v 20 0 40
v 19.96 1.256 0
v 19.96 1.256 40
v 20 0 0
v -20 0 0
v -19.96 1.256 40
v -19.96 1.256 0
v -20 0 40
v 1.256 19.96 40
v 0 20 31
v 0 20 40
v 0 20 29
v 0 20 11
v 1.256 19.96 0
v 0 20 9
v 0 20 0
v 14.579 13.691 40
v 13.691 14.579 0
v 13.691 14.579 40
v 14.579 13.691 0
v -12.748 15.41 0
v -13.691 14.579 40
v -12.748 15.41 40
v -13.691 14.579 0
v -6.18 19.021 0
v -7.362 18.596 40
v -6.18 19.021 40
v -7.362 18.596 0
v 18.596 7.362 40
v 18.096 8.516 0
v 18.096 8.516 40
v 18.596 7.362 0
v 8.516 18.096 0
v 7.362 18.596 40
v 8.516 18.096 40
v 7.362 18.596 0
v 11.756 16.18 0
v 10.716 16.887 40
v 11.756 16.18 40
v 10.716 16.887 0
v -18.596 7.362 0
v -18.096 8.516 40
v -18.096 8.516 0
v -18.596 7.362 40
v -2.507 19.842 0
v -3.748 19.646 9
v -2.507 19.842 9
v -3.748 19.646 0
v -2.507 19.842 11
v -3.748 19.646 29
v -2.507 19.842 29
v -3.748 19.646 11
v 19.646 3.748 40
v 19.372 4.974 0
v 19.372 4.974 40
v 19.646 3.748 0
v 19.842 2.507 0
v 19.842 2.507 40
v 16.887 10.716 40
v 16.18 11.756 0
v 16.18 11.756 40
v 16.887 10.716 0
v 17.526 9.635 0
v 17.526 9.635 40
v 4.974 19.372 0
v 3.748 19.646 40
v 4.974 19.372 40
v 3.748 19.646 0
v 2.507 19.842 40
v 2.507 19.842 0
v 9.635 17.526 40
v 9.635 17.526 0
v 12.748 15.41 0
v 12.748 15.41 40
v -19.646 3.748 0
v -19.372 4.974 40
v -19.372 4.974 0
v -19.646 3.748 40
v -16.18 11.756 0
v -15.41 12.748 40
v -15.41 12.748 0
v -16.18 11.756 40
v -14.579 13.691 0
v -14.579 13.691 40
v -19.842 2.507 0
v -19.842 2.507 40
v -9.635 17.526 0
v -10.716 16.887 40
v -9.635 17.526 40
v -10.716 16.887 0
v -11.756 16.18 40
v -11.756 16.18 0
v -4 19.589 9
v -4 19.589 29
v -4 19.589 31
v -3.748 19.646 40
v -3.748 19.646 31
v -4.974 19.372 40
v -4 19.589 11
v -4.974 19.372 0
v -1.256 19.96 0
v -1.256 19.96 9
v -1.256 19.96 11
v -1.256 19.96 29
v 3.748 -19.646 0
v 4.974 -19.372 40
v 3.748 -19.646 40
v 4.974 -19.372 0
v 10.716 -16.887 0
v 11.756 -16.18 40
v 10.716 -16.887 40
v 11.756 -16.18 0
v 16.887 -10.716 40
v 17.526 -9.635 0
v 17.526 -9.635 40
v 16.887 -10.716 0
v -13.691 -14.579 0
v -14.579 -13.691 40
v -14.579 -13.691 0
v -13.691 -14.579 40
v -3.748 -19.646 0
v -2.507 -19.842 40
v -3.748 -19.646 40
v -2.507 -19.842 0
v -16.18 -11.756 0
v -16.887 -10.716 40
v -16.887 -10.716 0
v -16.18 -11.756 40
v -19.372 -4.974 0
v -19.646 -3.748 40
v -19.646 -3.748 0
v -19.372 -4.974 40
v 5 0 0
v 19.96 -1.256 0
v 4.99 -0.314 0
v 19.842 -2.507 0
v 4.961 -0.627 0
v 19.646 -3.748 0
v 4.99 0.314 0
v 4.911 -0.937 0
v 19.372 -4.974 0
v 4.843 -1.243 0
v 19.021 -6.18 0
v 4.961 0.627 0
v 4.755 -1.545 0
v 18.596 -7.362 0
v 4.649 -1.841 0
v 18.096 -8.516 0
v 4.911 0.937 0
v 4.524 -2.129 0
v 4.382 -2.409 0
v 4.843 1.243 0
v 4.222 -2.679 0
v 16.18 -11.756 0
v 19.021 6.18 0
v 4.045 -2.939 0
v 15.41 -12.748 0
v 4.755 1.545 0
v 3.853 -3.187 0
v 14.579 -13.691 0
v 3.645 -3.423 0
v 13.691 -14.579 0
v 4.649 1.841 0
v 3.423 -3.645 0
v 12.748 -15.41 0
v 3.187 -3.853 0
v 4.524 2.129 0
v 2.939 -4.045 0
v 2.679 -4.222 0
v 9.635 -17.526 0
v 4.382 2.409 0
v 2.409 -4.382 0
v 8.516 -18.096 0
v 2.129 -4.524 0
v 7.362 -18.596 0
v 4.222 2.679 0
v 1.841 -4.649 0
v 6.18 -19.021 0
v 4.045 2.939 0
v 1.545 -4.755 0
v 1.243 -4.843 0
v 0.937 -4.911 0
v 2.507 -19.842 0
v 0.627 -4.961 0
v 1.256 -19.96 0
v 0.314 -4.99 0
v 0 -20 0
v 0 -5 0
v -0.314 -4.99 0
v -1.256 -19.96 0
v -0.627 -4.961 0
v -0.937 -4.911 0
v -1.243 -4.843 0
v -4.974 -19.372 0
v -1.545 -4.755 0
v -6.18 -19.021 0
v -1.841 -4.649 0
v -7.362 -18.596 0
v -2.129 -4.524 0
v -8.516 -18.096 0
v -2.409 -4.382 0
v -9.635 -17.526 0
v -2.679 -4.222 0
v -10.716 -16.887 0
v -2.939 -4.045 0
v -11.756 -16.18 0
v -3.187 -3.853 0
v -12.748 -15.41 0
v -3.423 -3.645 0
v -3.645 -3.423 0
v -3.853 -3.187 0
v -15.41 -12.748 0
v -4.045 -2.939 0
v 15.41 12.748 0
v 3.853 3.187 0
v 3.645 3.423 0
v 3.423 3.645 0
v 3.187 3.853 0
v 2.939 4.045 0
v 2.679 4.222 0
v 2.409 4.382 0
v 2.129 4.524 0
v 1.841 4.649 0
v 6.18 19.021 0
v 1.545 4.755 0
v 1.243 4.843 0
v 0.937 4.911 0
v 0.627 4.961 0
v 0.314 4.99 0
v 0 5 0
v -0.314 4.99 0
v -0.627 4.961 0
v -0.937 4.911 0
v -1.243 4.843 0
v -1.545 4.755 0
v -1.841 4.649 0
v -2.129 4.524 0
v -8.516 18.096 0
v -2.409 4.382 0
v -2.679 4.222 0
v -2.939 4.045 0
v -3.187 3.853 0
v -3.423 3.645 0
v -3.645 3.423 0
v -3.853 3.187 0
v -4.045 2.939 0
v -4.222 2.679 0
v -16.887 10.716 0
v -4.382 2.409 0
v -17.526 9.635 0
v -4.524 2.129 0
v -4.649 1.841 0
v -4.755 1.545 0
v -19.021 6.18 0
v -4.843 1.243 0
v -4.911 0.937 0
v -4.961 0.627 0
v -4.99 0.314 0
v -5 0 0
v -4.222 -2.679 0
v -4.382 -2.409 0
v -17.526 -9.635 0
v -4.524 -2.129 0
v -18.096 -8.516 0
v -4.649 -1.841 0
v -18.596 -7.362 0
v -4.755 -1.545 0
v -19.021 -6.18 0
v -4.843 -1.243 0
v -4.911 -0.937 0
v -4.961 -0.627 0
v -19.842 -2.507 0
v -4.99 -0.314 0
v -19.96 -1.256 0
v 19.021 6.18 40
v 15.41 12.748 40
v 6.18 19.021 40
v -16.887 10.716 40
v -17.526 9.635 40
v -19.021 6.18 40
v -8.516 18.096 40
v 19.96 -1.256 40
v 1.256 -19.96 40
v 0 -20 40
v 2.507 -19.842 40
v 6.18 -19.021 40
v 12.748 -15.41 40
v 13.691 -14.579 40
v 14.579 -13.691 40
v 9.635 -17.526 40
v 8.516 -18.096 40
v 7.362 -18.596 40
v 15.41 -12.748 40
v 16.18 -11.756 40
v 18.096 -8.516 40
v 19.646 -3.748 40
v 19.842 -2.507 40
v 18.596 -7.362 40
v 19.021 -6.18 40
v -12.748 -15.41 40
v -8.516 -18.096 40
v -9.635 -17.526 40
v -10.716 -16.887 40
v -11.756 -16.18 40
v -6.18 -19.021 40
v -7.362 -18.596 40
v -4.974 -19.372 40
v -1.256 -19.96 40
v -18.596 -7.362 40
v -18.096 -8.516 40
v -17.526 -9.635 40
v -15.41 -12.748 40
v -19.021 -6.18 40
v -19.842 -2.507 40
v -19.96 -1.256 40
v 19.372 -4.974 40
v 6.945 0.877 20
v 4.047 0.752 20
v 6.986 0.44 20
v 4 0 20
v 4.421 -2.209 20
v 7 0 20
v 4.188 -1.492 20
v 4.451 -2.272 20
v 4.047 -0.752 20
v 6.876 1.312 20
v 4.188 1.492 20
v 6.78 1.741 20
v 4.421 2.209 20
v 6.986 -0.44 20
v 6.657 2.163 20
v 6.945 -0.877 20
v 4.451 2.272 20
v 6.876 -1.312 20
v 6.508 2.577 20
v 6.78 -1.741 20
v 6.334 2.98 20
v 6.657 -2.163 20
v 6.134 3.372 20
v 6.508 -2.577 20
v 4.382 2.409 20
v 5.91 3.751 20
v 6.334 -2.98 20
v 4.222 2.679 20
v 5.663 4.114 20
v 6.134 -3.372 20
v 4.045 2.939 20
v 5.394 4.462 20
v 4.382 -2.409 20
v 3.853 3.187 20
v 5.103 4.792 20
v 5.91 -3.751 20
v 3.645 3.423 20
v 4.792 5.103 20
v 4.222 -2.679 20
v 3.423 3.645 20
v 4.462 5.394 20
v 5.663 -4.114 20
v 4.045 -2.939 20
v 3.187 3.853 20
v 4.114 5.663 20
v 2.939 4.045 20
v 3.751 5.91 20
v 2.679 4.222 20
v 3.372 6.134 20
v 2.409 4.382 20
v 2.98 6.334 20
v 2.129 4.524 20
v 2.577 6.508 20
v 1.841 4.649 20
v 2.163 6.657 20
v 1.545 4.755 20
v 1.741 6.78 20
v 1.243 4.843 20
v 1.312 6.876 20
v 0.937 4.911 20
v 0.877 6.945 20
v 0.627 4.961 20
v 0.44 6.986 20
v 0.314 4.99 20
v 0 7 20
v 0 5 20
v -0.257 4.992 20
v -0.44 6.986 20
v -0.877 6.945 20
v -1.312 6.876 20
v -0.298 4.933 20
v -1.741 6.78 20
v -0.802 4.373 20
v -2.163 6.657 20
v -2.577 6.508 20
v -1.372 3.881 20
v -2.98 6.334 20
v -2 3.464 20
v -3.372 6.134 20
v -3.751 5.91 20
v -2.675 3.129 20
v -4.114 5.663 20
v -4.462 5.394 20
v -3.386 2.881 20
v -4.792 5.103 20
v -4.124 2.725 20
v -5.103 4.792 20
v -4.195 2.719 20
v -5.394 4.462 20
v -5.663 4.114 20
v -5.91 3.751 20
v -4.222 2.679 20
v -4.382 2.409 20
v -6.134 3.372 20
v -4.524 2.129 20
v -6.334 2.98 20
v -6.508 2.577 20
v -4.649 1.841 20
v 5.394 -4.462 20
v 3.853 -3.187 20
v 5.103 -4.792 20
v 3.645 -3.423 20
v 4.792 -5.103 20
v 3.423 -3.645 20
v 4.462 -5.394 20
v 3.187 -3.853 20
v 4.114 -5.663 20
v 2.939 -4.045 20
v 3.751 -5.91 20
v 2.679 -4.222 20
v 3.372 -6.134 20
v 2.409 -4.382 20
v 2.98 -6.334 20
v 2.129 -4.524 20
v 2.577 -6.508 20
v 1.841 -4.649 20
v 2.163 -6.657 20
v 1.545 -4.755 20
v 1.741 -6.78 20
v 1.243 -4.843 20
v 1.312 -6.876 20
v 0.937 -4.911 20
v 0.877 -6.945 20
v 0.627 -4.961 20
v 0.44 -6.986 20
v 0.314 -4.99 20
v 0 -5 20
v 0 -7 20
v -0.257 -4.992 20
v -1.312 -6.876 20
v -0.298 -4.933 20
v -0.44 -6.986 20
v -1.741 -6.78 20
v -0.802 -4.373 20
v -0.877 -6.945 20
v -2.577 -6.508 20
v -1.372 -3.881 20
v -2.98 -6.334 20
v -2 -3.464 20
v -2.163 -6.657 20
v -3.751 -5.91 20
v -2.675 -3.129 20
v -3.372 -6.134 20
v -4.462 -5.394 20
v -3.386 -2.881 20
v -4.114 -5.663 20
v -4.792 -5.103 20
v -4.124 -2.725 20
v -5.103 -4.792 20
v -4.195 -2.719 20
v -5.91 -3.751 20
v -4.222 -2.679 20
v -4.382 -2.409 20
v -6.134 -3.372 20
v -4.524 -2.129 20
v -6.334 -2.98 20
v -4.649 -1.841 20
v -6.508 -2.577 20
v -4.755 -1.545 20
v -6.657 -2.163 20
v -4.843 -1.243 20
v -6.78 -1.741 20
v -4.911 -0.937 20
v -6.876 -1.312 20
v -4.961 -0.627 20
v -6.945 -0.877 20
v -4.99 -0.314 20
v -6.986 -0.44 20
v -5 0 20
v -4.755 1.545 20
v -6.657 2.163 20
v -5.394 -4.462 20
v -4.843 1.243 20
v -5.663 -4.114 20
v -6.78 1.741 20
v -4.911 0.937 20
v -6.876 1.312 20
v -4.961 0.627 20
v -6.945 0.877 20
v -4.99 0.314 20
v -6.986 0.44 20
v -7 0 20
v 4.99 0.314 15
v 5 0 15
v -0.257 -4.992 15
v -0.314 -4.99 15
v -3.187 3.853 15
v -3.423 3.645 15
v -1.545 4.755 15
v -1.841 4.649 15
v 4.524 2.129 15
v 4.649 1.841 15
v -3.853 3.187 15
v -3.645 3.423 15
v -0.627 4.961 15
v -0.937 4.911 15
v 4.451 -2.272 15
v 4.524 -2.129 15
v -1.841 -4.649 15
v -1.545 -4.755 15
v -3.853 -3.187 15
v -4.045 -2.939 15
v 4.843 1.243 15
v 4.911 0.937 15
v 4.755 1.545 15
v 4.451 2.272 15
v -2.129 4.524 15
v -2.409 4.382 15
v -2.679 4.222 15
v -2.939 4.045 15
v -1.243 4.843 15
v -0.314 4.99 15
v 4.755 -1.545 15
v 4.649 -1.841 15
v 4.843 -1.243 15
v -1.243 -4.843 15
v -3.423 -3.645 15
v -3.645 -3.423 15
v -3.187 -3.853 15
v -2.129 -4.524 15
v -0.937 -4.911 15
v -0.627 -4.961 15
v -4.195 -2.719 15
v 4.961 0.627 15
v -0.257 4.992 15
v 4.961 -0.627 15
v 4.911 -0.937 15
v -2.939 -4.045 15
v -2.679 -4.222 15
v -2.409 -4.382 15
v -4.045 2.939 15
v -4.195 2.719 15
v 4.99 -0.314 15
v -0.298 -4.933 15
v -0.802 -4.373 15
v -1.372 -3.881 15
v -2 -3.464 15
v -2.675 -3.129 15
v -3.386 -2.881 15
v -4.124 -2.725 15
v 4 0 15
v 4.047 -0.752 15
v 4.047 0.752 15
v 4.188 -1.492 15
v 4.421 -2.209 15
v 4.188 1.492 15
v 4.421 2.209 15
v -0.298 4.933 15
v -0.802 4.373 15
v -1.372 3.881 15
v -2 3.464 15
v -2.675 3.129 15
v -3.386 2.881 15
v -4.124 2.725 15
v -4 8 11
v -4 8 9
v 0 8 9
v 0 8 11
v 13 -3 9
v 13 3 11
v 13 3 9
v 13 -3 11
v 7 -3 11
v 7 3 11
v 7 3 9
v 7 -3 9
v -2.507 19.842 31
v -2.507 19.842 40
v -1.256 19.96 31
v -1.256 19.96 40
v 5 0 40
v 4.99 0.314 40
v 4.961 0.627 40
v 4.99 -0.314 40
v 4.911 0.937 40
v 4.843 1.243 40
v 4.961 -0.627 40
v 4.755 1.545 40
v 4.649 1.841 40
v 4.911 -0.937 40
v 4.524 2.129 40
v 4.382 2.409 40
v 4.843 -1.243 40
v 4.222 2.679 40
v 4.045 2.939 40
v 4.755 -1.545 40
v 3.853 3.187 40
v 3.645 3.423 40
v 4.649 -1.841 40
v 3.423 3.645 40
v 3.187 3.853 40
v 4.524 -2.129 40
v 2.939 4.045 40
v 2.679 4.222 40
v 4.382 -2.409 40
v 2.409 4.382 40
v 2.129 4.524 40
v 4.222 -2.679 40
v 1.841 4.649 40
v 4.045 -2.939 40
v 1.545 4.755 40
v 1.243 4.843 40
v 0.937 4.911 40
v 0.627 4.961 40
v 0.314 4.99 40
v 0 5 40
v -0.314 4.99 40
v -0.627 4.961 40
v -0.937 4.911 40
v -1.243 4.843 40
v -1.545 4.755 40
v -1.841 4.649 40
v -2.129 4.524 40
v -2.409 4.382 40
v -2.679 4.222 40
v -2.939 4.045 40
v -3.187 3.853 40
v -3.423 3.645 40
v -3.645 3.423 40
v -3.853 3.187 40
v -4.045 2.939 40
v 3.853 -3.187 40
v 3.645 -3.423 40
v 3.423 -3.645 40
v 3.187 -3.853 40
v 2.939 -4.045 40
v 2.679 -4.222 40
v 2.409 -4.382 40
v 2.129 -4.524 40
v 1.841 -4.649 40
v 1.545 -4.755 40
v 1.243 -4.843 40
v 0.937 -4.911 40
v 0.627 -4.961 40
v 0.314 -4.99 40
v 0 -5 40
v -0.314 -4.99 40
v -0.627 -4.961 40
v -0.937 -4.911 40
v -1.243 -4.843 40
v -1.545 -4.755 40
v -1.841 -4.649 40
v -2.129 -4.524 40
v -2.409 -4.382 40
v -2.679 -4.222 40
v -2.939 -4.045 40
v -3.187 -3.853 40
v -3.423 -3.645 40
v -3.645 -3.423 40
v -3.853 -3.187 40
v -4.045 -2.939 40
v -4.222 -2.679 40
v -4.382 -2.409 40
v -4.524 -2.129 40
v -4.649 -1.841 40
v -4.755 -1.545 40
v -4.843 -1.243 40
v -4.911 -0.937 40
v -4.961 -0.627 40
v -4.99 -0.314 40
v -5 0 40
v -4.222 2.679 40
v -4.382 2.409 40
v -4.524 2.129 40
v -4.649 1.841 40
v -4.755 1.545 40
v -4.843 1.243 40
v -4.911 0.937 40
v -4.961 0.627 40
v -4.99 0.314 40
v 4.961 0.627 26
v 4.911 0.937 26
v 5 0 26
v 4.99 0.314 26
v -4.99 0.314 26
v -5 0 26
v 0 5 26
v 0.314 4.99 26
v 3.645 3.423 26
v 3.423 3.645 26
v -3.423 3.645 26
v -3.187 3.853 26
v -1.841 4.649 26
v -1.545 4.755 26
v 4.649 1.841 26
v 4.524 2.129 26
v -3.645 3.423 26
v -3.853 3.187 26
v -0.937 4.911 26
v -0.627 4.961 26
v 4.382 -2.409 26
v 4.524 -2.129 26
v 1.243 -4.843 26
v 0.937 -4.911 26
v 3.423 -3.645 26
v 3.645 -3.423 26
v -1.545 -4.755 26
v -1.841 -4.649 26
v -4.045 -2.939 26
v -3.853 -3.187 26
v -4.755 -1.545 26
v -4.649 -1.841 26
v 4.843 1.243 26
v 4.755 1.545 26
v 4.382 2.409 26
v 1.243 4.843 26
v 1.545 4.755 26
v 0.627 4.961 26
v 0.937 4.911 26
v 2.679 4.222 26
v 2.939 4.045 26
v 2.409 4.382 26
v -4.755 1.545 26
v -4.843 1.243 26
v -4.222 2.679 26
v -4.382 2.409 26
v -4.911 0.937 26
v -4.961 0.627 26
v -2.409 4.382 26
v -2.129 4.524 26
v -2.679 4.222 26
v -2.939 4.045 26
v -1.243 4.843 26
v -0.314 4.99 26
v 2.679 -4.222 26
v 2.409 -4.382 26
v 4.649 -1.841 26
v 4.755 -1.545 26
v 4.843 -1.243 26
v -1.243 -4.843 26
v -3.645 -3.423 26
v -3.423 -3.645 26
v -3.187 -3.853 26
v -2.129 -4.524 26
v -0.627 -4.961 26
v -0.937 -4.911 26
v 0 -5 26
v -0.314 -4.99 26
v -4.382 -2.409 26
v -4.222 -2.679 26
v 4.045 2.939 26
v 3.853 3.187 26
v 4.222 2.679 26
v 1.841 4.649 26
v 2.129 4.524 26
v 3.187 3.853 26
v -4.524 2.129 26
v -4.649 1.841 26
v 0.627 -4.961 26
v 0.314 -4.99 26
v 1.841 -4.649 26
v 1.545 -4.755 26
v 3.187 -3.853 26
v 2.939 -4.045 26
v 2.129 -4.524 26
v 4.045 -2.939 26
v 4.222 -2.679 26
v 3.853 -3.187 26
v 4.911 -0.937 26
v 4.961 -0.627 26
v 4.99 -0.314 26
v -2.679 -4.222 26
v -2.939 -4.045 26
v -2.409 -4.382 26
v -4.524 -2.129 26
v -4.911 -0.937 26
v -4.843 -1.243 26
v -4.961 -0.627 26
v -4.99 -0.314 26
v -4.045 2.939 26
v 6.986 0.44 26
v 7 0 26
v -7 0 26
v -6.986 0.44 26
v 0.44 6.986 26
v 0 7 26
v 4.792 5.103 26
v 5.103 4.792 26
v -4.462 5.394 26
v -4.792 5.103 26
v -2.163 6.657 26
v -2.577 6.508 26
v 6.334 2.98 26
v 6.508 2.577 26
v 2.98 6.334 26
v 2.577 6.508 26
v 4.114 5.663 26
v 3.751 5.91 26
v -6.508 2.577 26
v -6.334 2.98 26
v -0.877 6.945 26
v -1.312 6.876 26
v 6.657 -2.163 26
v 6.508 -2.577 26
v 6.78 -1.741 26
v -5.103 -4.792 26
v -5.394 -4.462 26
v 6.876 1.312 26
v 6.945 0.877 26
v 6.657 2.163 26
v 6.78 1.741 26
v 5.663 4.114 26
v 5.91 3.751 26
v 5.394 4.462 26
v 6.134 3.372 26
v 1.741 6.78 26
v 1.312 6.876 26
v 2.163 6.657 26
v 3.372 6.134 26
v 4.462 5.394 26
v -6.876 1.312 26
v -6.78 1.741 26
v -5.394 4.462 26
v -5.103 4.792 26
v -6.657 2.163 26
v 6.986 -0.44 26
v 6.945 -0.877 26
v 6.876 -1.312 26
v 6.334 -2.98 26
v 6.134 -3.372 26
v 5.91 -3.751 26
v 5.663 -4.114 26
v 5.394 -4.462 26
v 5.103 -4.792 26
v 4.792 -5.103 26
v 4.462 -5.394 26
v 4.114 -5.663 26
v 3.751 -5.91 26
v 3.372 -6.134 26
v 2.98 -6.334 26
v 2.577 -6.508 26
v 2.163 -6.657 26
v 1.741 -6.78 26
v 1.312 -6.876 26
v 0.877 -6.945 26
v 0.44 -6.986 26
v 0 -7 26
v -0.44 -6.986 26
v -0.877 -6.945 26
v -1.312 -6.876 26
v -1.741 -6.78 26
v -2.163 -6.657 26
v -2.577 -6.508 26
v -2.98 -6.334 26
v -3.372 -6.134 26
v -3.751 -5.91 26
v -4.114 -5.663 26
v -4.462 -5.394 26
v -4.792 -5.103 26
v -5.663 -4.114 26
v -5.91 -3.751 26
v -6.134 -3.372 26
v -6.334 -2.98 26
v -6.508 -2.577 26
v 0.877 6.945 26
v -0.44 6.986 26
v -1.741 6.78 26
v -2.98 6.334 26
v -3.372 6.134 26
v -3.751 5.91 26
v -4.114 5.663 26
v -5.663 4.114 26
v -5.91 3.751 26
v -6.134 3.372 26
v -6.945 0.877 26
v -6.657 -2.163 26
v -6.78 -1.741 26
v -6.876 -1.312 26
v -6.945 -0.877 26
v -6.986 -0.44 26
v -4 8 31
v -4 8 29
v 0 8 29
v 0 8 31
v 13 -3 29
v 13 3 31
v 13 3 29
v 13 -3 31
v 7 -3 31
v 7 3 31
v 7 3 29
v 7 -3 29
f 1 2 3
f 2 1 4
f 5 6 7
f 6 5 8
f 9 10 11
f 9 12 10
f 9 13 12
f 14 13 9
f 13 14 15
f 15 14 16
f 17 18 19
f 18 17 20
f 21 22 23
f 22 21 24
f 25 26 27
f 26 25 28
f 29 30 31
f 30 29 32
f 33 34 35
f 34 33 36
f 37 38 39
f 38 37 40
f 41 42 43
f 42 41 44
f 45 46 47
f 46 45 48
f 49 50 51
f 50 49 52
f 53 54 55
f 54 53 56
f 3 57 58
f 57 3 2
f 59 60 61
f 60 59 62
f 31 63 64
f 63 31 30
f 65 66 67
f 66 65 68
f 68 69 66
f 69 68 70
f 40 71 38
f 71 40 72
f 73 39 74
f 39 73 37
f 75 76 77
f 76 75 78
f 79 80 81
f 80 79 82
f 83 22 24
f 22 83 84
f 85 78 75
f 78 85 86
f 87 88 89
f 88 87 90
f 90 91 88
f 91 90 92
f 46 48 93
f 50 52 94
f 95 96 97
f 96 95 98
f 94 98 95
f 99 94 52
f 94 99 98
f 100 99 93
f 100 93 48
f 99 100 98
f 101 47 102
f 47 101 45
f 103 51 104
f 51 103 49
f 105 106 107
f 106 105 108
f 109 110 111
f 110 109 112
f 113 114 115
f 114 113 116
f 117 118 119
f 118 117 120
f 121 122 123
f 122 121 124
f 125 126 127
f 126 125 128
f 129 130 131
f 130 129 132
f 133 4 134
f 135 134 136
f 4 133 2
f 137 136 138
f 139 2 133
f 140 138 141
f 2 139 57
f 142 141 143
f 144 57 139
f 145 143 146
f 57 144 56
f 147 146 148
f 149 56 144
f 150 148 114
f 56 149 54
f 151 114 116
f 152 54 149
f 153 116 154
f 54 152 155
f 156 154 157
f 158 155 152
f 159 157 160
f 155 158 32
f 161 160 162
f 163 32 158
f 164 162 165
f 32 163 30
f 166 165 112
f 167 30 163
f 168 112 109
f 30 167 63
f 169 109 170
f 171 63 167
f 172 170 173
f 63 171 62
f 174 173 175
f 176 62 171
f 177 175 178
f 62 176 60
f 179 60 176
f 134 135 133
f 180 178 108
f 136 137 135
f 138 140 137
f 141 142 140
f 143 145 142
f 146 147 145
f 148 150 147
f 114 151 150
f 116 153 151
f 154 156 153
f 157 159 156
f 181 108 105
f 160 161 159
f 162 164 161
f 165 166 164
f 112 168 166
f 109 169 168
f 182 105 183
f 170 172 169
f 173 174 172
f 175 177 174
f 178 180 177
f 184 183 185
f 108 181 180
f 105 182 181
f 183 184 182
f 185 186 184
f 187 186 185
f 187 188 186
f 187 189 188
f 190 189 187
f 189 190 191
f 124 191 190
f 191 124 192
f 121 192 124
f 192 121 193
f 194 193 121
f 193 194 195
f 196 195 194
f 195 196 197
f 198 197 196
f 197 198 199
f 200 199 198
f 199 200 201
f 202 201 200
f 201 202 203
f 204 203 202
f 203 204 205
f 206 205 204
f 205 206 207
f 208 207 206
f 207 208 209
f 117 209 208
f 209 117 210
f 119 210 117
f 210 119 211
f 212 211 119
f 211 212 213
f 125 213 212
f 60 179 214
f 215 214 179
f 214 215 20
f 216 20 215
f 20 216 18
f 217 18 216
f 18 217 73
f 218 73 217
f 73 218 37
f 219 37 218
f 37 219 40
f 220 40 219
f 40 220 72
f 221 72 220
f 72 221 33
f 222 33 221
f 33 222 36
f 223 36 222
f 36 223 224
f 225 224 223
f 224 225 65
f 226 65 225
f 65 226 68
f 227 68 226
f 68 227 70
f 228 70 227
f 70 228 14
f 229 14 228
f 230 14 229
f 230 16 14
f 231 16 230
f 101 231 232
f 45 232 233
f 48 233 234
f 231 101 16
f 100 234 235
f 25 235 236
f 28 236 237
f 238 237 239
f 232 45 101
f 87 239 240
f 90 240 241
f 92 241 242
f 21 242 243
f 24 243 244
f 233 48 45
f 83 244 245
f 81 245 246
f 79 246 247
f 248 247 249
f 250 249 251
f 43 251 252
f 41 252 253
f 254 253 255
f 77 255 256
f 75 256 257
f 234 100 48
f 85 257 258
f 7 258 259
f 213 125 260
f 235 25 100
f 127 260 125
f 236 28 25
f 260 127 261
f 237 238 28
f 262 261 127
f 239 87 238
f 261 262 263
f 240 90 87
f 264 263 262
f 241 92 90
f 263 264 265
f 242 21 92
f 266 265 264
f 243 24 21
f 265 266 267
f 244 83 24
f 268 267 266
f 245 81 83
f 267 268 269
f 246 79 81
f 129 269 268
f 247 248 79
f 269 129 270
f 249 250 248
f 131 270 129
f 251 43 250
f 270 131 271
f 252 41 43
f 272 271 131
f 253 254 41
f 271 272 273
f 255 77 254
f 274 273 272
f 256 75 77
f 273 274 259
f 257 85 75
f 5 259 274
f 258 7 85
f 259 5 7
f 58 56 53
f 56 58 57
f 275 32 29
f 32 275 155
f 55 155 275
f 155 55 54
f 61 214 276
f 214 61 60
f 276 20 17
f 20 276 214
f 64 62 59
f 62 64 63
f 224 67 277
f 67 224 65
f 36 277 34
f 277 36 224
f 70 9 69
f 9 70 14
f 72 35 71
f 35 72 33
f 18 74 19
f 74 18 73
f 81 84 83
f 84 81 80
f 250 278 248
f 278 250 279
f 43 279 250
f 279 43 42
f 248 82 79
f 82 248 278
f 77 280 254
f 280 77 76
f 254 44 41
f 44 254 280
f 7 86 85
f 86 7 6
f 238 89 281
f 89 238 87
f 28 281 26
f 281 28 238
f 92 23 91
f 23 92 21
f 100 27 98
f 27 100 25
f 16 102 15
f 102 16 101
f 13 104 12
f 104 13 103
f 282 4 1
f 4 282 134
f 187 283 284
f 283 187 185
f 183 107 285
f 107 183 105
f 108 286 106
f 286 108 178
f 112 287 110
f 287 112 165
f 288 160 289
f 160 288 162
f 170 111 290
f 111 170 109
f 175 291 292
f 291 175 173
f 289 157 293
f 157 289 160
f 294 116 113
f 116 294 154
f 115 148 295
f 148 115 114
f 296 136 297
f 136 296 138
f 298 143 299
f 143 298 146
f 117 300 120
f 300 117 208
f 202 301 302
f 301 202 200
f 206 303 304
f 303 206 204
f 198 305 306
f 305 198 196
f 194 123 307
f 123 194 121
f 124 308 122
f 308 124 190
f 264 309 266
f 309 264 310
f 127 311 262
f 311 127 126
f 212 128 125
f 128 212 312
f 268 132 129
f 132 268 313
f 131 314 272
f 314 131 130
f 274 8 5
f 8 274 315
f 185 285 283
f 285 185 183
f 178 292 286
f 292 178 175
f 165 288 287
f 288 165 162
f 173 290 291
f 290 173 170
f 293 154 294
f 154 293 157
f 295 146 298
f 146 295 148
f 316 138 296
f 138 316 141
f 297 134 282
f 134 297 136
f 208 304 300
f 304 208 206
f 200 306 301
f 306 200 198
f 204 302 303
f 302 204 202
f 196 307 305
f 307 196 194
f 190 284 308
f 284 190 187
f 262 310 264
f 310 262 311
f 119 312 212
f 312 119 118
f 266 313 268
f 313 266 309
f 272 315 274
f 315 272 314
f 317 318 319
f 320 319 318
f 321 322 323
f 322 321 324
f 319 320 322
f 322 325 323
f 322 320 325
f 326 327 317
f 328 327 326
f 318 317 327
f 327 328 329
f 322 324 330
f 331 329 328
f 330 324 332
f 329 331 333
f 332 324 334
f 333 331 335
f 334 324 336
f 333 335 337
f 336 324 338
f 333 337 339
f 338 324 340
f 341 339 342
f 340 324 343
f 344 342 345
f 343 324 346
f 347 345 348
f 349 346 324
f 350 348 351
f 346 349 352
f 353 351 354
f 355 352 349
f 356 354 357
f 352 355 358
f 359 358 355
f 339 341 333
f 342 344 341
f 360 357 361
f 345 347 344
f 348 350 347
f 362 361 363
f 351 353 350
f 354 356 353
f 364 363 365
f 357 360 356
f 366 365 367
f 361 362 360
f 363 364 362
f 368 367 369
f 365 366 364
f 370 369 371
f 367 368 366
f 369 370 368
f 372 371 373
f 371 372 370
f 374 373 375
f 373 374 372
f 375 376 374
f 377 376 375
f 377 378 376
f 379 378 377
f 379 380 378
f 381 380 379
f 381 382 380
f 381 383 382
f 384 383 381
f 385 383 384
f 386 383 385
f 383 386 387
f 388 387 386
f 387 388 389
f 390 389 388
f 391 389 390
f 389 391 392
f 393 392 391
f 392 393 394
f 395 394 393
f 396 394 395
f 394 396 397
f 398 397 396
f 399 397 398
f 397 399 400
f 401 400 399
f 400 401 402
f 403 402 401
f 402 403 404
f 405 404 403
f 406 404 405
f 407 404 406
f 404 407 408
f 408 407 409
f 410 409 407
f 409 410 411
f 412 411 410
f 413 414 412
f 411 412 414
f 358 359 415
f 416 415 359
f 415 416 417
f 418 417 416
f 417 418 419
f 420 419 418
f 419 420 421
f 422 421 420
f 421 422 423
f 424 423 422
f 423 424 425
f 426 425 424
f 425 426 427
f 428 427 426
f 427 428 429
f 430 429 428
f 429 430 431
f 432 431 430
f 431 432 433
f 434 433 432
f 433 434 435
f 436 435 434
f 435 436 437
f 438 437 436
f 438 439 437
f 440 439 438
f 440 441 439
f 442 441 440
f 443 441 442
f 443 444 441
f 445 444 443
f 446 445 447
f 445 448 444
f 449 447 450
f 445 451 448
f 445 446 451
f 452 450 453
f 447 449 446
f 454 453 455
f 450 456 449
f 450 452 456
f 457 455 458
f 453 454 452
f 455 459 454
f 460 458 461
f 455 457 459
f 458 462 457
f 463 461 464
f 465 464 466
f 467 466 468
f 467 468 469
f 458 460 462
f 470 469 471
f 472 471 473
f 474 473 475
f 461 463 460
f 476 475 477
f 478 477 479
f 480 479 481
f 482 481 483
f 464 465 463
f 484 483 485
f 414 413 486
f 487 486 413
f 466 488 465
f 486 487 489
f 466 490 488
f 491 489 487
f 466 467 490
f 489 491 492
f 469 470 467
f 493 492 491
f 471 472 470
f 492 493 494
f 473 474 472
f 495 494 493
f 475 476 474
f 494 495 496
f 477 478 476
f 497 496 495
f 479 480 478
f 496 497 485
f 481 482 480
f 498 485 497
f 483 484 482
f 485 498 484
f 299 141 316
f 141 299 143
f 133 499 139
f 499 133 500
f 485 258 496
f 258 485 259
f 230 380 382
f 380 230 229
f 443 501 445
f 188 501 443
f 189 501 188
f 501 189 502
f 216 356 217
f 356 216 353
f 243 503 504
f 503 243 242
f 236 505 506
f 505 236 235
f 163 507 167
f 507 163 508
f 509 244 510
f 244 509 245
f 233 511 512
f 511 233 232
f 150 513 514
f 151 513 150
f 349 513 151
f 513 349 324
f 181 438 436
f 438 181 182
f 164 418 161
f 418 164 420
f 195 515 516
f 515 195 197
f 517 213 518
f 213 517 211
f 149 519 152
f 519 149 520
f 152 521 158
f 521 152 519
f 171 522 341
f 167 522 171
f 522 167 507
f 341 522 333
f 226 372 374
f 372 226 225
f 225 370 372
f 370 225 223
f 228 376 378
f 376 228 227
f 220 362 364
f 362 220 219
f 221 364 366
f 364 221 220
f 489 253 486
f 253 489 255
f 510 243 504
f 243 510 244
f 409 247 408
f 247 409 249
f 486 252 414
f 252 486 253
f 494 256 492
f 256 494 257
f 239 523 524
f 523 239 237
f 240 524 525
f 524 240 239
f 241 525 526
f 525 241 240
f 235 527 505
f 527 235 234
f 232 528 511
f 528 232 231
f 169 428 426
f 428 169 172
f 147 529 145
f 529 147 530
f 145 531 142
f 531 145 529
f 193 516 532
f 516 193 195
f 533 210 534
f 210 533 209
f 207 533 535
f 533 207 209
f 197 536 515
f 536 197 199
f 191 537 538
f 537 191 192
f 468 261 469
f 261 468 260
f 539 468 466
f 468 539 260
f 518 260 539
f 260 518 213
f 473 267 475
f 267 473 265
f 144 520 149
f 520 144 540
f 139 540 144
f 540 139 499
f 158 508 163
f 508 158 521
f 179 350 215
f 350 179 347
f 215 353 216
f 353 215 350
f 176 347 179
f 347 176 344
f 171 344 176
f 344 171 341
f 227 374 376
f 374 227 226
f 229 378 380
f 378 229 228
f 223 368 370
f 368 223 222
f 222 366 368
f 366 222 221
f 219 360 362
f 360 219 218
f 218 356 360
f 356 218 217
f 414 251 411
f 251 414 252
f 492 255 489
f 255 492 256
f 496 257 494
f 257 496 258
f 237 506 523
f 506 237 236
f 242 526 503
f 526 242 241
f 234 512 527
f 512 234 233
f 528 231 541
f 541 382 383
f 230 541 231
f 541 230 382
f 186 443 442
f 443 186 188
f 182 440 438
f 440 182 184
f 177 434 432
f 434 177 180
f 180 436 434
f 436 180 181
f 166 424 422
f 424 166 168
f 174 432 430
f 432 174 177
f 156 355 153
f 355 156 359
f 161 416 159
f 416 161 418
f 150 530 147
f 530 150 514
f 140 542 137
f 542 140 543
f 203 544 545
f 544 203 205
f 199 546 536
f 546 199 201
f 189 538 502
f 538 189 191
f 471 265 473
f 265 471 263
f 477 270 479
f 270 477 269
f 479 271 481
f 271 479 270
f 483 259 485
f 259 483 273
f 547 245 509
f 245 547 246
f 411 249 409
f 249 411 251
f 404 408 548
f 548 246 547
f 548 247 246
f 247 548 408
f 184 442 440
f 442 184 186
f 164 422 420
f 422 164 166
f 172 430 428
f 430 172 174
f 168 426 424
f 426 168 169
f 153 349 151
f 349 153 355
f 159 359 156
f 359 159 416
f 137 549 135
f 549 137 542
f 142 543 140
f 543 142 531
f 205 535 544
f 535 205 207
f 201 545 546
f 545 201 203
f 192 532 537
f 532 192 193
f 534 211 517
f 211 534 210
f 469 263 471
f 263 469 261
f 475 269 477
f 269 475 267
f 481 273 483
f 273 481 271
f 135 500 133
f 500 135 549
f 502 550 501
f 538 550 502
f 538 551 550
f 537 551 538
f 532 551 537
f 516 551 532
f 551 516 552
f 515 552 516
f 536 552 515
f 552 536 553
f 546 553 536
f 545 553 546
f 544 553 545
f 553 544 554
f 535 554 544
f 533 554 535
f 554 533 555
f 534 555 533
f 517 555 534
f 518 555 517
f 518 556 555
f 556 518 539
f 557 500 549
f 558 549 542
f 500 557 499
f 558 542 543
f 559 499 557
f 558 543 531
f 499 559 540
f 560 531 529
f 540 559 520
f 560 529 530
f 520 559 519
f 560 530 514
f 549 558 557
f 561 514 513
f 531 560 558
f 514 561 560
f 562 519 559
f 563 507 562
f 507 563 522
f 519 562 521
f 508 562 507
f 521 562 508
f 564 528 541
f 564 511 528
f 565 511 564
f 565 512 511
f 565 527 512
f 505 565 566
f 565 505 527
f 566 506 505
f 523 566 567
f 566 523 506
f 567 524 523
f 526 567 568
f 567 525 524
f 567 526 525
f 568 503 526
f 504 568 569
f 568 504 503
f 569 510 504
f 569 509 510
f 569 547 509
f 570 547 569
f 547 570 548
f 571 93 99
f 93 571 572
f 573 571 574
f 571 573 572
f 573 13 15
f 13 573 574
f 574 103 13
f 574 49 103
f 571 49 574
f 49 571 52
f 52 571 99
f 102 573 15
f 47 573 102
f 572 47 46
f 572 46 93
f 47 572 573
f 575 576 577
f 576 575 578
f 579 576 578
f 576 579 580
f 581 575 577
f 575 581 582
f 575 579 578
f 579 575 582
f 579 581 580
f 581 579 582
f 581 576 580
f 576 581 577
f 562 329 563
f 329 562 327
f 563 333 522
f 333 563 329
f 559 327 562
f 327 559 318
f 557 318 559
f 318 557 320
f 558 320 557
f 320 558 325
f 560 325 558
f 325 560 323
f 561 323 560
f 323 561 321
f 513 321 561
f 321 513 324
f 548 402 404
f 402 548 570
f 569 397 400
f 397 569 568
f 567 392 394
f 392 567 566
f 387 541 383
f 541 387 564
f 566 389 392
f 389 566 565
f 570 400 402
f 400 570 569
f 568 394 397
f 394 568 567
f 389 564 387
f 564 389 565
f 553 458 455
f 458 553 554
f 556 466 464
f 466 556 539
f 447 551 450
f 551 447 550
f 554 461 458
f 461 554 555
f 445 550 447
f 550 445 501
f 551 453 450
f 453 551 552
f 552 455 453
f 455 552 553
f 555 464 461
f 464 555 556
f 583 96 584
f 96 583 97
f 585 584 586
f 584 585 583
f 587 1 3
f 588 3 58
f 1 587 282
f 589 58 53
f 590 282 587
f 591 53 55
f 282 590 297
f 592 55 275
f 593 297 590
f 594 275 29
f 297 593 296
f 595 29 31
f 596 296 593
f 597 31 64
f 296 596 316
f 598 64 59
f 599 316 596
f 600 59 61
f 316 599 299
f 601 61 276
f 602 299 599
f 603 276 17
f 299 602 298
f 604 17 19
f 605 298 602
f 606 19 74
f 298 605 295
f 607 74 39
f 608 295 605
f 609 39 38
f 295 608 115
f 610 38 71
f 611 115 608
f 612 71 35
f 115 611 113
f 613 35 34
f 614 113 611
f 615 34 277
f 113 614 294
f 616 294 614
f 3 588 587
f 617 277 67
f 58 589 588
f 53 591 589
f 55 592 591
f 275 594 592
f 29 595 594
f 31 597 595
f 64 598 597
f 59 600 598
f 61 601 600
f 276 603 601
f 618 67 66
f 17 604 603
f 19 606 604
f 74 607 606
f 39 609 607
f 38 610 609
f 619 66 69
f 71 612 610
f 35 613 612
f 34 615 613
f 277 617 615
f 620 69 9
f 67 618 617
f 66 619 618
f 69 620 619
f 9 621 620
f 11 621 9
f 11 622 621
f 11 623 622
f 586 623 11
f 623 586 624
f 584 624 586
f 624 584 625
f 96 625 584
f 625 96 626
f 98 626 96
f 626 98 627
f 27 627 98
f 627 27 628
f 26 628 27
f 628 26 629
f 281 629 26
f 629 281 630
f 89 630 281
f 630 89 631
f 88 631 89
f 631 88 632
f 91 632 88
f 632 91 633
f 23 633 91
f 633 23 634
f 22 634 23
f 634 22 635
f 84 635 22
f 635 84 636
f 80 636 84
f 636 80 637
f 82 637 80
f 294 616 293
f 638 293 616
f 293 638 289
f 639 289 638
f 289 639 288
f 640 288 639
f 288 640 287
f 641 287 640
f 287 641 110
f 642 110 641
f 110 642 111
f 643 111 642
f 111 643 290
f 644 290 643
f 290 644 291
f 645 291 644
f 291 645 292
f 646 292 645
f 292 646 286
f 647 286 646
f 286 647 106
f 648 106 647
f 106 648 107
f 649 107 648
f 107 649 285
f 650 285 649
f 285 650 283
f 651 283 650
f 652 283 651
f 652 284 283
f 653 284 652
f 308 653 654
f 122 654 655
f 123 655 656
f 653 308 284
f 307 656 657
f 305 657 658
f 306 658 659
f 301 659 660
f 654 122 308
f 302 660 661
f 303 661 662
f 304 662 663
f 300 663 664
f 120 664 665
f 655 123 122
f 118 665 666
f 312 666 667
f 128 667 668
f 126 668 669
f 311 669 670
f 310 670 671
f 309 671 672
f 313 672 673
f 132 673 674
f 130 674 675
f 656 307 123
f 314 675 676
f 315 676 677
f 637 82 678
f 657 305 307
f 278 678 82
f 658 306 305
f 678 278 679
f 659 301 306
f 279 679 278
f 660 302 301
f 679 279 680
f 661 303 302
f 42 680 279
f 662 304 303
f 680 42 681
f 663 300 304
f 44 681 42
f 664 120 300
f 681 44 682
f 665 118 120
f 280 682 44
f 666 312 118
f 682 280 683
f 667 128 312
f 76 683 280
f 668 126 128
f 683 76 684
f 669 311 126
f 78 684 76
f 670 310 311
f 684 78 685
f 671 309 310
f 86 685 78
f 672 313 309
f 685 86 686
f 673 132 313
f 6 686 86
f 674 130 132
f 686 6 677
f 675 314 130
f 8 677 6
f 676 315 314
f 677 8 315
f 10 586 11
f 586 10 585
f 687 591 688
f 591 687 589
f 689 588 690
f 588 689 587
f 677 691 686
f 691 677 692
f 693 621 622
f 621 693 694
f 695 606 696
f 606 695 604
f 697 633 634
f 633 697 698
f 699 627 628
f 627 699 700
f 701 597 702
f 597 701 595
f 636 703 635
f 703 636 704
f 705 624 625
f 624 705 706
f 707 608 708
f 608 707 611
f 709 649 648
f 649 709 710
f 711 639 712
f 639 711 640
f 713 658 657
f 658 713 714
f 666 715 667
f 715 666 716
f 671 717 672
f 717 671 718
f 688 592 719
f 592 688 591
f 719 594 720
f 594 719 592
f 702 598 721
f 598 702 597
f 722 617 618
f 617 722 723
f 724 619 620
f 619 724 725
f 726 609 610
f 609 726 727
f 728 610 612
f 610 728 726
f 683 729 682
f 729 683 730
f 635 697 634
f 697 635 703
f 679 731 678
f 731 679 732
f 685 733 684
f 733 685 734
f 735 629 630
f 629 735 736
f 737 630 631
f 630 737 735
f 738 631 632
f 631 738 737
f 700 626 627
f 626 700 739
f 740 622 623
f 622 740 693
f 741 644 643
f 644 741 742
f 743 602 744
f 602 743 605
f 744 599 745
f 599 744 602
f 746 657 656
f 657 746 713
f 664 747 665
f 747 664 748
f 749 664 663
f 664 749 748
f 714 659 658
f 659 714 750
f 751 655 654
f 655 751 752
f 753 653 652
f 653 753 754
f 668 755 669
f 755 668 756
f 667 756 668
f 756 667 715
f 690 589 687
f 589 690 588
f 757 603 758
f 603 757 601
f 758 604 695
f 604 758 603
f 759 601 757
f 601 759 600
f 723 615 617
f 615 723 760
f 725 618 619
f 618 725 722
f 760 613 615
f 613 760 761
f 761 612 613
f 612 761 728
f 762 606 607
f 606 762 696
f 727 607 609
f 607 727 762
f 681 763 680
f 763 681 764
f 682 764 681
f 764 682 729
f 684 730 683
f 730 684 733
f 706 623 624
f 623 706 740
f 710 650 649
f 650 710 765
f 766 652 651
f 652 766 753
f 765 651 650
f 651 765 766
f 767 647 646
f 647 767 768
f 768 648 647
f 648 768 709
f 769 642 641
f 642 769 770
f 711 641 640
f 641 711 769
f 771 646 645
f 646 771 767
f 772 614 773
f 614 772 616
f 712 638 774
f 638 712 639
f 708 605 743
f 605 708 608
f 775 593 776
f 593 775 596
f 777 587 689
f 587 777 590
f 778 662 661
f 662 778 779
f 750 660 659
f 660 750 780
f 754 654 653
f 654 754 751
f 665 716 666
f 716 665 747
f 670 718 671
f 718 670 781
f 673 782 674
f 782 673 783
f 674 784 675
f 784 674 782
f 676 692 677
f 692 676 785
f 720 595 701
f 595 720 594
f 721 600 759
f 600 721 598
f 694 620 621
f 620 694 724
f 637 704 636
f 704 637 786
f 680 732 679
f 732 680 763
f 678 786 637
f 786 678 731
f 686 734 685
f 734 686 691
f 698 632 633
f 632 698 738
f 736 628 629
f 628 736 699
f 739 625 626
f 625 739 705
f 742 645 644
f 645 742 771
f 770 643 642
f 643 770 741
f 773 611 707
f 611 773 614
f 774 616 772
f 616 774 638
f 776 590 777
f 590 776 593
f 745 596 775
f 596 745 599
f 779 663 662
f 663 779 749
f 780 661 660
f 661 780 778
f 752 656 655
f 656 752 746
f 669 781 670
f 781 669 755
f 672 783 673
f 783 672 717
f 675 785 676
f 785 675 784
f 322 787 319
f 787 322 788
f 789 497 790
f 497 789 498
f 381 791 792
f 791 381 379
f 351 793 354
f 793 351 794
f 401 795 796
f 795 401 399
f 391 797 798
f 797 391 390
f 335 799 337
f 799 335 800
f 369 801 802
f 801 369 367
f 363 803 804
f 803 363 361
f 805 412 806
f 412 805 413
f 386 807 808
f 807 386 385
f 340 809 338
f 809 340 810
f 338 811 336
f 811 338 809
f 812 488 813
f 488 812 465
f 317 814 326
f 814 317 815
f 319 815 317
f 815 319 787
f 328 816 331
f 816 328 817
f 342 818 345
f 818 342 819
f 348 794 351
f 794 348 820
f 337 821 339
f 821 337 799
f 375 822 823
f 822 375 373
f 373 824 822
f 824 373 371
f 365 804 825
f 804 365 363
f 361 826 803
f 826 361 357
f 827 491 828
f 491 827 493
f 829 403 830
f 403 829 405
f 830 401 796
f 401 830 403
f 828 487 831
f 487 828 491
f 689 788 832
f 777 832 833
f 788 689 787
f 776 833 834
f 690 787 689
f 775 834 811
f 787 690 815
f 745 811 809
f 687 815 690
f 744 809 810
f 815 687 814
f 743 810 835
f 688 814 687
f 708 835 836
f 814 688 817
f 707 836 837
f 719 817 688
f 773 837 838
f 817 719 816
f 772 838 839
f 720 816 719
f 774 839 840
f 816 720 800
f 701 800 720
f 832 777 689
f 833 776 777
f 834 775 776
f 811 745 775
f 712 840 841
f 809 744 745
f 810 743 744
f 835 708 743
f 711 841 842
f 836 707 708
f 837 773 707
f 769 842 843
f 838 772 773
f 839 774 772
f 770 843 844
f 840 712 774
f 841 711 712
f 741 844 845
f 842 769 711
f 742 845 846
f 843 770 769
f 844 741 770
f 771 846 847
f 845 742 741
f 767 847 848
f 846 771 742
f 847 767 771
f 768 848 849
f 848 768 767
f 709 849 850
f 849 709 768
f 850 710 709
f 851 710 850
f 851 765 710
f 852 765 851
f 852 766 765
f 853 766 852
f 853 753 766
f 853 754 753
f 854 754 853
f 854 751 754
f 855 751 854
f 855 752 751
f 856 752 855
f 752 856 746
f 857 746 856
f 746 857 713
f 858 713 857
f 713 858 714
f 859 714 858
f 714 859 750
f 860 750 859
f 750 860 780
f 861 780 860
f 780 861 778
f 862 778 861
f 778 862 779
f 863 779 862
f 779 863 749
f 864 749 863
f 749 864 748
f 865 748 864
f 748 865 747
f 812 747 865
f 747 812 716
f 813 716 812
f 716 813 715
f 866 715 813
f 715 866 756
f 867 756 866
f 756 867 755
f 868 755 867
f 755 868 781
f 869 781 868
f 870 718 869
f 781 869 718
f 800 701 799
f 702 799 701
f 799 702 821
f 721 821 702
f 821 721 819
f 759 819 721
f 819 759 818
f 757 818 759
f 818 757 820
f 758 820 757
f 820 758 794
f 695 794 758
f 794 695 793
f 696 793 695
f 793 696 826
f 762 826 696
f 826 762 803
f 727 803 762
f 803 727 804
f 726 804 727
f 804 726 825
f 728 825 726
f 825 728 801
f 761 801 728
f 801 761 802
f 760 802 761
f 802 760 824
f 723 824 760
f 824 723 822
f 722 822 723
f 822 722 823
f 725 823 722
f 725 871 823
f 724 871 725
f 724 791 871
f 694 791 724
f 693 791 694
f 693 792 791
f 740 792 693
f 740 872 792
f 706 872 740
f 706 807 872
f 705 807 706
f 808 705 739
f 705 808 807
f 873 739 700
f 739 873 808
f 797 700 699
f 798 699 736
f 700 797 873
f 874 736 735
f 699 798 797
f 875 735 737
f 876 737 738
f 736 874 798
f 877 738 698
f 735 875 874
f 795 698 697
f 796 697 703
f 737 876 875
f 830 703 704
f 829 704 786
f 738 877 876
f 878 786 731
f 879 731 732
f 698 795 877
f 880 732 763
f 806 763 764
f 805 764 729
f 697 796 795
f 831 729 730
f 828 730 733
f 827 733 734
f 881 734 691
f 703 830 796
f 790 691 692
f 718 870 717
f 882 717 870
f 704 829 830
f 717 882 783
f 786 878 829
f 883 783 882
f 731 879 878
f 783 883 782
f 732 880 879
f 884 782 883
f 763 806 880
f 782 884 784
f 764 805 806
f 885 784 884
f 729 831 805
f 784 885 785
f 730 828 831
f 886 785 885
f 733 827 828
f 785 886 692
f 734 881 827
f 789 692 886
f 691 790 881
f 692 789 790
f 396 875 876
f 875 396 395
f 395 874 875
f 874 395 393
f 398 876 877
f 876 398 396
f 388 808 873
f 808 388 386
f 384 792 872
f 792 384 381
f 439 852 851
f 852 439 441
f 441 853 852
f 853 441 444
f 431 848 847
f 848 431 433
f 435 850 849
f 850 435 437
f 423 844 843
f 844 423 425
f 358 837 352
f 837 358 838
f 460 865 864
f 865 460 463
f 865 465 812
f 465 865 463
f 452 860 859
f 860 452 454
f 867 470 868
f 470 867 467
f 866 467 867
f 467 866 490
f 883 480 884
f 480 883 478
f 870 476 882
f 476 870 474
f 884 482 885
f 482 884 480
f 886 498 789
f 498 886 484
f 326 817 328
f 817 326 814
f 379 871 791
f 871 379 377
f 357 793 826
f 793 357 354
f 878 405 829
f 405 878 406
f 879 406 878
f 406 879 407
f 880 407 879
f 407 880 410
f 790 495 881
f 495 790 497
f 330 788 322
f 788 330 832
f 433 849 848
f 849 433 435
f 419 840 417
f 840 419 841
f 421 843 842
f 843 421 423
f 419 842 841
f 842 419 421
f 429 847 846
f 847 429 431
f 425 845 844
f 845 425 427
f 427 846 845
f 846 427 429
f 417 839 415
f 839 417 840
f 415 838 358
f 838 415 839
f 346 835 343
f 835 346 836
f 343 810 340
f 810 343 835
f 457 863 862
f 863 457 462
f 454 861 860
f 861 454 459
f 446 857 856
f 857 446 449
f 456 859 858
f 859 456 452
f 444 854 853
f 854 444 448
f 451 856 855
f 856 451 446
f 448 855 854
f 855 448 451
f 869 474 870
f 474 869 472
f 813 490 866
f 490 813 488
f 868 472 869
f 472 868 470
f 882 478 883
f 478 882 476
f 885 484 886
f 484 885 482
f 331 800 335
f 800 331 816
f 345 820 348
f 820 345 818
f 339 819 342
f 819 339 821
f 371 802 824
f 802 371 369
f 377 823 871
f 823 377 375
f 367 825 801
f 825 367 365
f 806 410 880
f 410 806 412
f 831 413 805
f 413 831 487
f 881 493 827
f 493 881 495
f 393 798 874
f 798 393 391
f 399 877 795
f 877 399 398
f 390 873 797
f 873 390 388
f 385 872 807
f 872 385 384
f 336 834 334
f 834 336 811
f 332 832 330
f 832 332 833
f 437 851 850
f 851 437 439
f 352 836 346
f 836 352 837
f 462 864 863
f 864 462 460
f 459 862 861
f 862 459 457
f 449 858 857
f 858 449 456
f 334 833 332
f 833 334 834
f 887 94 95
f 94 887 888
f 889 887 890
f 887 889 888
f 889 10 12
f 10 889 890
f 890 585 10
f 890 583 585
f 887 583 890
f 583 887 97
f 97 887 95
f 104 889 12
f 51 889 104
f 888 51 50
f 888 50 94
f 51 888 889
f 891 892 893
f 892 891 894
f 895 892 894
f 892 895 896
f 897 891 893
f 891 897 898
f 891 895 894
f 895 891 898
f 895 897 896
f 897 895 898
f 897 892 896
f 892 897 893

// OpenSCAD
// Parameters
clamp_diameter = 40;
clamp_length = 20;
bore_diameter = 10;
spider_thickness = 5;
spider_lobe_radius = 6;
spider_lobe_count = 3;
keyway_width = 4;
keyway_depth = 2;

// Module: Clamp Half
module clamp_half(mirror=false) {
    difference() {
        // Main body
        cylinder(d=clamp_diameter, h=clamp_length, $fn=100);

        // Central bore
        translate([0, 0, -1])
            cylinder(d=bore_diameter, h=clamp_length + 2, $fn=100);

        // Semi-circular cutout for spider
        translate([0, 0, mirror ? 0 : clamp_length - spider_thickness])
            cylinder(d=spider_lobe_radius * 2 + 2, h=spider_thickness + 1, $fn=100);

        // Keyway slot
        translate([-keyway_width/2, clamp_diameter/2 - keyway_depth, clamp_length/2])
            rotate([90, 0, 0])
                cube([keyway_width, keyway_depth, clamp_length], center=true);

        // Interlocking profile (simple notch)
        translate([clamp_diameter/4, 0, clamp_length/2])
            rotate([0, 90, 0])
                cube([2, 6, 6], center=true);
    }
}

// Module: Central Spider
module central_spider() {
    difference() {
        // Base cylinder
        cylinder(d=clamp_diameter - 2, h=spider_thickness, $fn=100);

        // Cut out center bore
        translate([0, 0, -1])
            cylinder(d=bore_diameter, h=spider_thickness + 2, $fn=100);
    }

    // Add lobes
    for (i = [0 : 360/spider_lobe_count : 359]) {
        rotate([0, 0, i])
            translate([clamp_diameter/4, 0, 0])
                cylinder(d=spider_lobe_radius * 2, h=spider_thickness, $fn=50);
    }
}

// Assembly
module coupling_assembly() {
    // Left clamp half
    clamp_half();

    // Central spider
    translate([0, 0, clamp_length - spider_thickness])
        central_spider();

    // Right clamp half (mirrored)
    translate([0, 0, clamp_length])
        clamp_half(mirror=true);
}

// Render the full assembly
coupling_assembly();
